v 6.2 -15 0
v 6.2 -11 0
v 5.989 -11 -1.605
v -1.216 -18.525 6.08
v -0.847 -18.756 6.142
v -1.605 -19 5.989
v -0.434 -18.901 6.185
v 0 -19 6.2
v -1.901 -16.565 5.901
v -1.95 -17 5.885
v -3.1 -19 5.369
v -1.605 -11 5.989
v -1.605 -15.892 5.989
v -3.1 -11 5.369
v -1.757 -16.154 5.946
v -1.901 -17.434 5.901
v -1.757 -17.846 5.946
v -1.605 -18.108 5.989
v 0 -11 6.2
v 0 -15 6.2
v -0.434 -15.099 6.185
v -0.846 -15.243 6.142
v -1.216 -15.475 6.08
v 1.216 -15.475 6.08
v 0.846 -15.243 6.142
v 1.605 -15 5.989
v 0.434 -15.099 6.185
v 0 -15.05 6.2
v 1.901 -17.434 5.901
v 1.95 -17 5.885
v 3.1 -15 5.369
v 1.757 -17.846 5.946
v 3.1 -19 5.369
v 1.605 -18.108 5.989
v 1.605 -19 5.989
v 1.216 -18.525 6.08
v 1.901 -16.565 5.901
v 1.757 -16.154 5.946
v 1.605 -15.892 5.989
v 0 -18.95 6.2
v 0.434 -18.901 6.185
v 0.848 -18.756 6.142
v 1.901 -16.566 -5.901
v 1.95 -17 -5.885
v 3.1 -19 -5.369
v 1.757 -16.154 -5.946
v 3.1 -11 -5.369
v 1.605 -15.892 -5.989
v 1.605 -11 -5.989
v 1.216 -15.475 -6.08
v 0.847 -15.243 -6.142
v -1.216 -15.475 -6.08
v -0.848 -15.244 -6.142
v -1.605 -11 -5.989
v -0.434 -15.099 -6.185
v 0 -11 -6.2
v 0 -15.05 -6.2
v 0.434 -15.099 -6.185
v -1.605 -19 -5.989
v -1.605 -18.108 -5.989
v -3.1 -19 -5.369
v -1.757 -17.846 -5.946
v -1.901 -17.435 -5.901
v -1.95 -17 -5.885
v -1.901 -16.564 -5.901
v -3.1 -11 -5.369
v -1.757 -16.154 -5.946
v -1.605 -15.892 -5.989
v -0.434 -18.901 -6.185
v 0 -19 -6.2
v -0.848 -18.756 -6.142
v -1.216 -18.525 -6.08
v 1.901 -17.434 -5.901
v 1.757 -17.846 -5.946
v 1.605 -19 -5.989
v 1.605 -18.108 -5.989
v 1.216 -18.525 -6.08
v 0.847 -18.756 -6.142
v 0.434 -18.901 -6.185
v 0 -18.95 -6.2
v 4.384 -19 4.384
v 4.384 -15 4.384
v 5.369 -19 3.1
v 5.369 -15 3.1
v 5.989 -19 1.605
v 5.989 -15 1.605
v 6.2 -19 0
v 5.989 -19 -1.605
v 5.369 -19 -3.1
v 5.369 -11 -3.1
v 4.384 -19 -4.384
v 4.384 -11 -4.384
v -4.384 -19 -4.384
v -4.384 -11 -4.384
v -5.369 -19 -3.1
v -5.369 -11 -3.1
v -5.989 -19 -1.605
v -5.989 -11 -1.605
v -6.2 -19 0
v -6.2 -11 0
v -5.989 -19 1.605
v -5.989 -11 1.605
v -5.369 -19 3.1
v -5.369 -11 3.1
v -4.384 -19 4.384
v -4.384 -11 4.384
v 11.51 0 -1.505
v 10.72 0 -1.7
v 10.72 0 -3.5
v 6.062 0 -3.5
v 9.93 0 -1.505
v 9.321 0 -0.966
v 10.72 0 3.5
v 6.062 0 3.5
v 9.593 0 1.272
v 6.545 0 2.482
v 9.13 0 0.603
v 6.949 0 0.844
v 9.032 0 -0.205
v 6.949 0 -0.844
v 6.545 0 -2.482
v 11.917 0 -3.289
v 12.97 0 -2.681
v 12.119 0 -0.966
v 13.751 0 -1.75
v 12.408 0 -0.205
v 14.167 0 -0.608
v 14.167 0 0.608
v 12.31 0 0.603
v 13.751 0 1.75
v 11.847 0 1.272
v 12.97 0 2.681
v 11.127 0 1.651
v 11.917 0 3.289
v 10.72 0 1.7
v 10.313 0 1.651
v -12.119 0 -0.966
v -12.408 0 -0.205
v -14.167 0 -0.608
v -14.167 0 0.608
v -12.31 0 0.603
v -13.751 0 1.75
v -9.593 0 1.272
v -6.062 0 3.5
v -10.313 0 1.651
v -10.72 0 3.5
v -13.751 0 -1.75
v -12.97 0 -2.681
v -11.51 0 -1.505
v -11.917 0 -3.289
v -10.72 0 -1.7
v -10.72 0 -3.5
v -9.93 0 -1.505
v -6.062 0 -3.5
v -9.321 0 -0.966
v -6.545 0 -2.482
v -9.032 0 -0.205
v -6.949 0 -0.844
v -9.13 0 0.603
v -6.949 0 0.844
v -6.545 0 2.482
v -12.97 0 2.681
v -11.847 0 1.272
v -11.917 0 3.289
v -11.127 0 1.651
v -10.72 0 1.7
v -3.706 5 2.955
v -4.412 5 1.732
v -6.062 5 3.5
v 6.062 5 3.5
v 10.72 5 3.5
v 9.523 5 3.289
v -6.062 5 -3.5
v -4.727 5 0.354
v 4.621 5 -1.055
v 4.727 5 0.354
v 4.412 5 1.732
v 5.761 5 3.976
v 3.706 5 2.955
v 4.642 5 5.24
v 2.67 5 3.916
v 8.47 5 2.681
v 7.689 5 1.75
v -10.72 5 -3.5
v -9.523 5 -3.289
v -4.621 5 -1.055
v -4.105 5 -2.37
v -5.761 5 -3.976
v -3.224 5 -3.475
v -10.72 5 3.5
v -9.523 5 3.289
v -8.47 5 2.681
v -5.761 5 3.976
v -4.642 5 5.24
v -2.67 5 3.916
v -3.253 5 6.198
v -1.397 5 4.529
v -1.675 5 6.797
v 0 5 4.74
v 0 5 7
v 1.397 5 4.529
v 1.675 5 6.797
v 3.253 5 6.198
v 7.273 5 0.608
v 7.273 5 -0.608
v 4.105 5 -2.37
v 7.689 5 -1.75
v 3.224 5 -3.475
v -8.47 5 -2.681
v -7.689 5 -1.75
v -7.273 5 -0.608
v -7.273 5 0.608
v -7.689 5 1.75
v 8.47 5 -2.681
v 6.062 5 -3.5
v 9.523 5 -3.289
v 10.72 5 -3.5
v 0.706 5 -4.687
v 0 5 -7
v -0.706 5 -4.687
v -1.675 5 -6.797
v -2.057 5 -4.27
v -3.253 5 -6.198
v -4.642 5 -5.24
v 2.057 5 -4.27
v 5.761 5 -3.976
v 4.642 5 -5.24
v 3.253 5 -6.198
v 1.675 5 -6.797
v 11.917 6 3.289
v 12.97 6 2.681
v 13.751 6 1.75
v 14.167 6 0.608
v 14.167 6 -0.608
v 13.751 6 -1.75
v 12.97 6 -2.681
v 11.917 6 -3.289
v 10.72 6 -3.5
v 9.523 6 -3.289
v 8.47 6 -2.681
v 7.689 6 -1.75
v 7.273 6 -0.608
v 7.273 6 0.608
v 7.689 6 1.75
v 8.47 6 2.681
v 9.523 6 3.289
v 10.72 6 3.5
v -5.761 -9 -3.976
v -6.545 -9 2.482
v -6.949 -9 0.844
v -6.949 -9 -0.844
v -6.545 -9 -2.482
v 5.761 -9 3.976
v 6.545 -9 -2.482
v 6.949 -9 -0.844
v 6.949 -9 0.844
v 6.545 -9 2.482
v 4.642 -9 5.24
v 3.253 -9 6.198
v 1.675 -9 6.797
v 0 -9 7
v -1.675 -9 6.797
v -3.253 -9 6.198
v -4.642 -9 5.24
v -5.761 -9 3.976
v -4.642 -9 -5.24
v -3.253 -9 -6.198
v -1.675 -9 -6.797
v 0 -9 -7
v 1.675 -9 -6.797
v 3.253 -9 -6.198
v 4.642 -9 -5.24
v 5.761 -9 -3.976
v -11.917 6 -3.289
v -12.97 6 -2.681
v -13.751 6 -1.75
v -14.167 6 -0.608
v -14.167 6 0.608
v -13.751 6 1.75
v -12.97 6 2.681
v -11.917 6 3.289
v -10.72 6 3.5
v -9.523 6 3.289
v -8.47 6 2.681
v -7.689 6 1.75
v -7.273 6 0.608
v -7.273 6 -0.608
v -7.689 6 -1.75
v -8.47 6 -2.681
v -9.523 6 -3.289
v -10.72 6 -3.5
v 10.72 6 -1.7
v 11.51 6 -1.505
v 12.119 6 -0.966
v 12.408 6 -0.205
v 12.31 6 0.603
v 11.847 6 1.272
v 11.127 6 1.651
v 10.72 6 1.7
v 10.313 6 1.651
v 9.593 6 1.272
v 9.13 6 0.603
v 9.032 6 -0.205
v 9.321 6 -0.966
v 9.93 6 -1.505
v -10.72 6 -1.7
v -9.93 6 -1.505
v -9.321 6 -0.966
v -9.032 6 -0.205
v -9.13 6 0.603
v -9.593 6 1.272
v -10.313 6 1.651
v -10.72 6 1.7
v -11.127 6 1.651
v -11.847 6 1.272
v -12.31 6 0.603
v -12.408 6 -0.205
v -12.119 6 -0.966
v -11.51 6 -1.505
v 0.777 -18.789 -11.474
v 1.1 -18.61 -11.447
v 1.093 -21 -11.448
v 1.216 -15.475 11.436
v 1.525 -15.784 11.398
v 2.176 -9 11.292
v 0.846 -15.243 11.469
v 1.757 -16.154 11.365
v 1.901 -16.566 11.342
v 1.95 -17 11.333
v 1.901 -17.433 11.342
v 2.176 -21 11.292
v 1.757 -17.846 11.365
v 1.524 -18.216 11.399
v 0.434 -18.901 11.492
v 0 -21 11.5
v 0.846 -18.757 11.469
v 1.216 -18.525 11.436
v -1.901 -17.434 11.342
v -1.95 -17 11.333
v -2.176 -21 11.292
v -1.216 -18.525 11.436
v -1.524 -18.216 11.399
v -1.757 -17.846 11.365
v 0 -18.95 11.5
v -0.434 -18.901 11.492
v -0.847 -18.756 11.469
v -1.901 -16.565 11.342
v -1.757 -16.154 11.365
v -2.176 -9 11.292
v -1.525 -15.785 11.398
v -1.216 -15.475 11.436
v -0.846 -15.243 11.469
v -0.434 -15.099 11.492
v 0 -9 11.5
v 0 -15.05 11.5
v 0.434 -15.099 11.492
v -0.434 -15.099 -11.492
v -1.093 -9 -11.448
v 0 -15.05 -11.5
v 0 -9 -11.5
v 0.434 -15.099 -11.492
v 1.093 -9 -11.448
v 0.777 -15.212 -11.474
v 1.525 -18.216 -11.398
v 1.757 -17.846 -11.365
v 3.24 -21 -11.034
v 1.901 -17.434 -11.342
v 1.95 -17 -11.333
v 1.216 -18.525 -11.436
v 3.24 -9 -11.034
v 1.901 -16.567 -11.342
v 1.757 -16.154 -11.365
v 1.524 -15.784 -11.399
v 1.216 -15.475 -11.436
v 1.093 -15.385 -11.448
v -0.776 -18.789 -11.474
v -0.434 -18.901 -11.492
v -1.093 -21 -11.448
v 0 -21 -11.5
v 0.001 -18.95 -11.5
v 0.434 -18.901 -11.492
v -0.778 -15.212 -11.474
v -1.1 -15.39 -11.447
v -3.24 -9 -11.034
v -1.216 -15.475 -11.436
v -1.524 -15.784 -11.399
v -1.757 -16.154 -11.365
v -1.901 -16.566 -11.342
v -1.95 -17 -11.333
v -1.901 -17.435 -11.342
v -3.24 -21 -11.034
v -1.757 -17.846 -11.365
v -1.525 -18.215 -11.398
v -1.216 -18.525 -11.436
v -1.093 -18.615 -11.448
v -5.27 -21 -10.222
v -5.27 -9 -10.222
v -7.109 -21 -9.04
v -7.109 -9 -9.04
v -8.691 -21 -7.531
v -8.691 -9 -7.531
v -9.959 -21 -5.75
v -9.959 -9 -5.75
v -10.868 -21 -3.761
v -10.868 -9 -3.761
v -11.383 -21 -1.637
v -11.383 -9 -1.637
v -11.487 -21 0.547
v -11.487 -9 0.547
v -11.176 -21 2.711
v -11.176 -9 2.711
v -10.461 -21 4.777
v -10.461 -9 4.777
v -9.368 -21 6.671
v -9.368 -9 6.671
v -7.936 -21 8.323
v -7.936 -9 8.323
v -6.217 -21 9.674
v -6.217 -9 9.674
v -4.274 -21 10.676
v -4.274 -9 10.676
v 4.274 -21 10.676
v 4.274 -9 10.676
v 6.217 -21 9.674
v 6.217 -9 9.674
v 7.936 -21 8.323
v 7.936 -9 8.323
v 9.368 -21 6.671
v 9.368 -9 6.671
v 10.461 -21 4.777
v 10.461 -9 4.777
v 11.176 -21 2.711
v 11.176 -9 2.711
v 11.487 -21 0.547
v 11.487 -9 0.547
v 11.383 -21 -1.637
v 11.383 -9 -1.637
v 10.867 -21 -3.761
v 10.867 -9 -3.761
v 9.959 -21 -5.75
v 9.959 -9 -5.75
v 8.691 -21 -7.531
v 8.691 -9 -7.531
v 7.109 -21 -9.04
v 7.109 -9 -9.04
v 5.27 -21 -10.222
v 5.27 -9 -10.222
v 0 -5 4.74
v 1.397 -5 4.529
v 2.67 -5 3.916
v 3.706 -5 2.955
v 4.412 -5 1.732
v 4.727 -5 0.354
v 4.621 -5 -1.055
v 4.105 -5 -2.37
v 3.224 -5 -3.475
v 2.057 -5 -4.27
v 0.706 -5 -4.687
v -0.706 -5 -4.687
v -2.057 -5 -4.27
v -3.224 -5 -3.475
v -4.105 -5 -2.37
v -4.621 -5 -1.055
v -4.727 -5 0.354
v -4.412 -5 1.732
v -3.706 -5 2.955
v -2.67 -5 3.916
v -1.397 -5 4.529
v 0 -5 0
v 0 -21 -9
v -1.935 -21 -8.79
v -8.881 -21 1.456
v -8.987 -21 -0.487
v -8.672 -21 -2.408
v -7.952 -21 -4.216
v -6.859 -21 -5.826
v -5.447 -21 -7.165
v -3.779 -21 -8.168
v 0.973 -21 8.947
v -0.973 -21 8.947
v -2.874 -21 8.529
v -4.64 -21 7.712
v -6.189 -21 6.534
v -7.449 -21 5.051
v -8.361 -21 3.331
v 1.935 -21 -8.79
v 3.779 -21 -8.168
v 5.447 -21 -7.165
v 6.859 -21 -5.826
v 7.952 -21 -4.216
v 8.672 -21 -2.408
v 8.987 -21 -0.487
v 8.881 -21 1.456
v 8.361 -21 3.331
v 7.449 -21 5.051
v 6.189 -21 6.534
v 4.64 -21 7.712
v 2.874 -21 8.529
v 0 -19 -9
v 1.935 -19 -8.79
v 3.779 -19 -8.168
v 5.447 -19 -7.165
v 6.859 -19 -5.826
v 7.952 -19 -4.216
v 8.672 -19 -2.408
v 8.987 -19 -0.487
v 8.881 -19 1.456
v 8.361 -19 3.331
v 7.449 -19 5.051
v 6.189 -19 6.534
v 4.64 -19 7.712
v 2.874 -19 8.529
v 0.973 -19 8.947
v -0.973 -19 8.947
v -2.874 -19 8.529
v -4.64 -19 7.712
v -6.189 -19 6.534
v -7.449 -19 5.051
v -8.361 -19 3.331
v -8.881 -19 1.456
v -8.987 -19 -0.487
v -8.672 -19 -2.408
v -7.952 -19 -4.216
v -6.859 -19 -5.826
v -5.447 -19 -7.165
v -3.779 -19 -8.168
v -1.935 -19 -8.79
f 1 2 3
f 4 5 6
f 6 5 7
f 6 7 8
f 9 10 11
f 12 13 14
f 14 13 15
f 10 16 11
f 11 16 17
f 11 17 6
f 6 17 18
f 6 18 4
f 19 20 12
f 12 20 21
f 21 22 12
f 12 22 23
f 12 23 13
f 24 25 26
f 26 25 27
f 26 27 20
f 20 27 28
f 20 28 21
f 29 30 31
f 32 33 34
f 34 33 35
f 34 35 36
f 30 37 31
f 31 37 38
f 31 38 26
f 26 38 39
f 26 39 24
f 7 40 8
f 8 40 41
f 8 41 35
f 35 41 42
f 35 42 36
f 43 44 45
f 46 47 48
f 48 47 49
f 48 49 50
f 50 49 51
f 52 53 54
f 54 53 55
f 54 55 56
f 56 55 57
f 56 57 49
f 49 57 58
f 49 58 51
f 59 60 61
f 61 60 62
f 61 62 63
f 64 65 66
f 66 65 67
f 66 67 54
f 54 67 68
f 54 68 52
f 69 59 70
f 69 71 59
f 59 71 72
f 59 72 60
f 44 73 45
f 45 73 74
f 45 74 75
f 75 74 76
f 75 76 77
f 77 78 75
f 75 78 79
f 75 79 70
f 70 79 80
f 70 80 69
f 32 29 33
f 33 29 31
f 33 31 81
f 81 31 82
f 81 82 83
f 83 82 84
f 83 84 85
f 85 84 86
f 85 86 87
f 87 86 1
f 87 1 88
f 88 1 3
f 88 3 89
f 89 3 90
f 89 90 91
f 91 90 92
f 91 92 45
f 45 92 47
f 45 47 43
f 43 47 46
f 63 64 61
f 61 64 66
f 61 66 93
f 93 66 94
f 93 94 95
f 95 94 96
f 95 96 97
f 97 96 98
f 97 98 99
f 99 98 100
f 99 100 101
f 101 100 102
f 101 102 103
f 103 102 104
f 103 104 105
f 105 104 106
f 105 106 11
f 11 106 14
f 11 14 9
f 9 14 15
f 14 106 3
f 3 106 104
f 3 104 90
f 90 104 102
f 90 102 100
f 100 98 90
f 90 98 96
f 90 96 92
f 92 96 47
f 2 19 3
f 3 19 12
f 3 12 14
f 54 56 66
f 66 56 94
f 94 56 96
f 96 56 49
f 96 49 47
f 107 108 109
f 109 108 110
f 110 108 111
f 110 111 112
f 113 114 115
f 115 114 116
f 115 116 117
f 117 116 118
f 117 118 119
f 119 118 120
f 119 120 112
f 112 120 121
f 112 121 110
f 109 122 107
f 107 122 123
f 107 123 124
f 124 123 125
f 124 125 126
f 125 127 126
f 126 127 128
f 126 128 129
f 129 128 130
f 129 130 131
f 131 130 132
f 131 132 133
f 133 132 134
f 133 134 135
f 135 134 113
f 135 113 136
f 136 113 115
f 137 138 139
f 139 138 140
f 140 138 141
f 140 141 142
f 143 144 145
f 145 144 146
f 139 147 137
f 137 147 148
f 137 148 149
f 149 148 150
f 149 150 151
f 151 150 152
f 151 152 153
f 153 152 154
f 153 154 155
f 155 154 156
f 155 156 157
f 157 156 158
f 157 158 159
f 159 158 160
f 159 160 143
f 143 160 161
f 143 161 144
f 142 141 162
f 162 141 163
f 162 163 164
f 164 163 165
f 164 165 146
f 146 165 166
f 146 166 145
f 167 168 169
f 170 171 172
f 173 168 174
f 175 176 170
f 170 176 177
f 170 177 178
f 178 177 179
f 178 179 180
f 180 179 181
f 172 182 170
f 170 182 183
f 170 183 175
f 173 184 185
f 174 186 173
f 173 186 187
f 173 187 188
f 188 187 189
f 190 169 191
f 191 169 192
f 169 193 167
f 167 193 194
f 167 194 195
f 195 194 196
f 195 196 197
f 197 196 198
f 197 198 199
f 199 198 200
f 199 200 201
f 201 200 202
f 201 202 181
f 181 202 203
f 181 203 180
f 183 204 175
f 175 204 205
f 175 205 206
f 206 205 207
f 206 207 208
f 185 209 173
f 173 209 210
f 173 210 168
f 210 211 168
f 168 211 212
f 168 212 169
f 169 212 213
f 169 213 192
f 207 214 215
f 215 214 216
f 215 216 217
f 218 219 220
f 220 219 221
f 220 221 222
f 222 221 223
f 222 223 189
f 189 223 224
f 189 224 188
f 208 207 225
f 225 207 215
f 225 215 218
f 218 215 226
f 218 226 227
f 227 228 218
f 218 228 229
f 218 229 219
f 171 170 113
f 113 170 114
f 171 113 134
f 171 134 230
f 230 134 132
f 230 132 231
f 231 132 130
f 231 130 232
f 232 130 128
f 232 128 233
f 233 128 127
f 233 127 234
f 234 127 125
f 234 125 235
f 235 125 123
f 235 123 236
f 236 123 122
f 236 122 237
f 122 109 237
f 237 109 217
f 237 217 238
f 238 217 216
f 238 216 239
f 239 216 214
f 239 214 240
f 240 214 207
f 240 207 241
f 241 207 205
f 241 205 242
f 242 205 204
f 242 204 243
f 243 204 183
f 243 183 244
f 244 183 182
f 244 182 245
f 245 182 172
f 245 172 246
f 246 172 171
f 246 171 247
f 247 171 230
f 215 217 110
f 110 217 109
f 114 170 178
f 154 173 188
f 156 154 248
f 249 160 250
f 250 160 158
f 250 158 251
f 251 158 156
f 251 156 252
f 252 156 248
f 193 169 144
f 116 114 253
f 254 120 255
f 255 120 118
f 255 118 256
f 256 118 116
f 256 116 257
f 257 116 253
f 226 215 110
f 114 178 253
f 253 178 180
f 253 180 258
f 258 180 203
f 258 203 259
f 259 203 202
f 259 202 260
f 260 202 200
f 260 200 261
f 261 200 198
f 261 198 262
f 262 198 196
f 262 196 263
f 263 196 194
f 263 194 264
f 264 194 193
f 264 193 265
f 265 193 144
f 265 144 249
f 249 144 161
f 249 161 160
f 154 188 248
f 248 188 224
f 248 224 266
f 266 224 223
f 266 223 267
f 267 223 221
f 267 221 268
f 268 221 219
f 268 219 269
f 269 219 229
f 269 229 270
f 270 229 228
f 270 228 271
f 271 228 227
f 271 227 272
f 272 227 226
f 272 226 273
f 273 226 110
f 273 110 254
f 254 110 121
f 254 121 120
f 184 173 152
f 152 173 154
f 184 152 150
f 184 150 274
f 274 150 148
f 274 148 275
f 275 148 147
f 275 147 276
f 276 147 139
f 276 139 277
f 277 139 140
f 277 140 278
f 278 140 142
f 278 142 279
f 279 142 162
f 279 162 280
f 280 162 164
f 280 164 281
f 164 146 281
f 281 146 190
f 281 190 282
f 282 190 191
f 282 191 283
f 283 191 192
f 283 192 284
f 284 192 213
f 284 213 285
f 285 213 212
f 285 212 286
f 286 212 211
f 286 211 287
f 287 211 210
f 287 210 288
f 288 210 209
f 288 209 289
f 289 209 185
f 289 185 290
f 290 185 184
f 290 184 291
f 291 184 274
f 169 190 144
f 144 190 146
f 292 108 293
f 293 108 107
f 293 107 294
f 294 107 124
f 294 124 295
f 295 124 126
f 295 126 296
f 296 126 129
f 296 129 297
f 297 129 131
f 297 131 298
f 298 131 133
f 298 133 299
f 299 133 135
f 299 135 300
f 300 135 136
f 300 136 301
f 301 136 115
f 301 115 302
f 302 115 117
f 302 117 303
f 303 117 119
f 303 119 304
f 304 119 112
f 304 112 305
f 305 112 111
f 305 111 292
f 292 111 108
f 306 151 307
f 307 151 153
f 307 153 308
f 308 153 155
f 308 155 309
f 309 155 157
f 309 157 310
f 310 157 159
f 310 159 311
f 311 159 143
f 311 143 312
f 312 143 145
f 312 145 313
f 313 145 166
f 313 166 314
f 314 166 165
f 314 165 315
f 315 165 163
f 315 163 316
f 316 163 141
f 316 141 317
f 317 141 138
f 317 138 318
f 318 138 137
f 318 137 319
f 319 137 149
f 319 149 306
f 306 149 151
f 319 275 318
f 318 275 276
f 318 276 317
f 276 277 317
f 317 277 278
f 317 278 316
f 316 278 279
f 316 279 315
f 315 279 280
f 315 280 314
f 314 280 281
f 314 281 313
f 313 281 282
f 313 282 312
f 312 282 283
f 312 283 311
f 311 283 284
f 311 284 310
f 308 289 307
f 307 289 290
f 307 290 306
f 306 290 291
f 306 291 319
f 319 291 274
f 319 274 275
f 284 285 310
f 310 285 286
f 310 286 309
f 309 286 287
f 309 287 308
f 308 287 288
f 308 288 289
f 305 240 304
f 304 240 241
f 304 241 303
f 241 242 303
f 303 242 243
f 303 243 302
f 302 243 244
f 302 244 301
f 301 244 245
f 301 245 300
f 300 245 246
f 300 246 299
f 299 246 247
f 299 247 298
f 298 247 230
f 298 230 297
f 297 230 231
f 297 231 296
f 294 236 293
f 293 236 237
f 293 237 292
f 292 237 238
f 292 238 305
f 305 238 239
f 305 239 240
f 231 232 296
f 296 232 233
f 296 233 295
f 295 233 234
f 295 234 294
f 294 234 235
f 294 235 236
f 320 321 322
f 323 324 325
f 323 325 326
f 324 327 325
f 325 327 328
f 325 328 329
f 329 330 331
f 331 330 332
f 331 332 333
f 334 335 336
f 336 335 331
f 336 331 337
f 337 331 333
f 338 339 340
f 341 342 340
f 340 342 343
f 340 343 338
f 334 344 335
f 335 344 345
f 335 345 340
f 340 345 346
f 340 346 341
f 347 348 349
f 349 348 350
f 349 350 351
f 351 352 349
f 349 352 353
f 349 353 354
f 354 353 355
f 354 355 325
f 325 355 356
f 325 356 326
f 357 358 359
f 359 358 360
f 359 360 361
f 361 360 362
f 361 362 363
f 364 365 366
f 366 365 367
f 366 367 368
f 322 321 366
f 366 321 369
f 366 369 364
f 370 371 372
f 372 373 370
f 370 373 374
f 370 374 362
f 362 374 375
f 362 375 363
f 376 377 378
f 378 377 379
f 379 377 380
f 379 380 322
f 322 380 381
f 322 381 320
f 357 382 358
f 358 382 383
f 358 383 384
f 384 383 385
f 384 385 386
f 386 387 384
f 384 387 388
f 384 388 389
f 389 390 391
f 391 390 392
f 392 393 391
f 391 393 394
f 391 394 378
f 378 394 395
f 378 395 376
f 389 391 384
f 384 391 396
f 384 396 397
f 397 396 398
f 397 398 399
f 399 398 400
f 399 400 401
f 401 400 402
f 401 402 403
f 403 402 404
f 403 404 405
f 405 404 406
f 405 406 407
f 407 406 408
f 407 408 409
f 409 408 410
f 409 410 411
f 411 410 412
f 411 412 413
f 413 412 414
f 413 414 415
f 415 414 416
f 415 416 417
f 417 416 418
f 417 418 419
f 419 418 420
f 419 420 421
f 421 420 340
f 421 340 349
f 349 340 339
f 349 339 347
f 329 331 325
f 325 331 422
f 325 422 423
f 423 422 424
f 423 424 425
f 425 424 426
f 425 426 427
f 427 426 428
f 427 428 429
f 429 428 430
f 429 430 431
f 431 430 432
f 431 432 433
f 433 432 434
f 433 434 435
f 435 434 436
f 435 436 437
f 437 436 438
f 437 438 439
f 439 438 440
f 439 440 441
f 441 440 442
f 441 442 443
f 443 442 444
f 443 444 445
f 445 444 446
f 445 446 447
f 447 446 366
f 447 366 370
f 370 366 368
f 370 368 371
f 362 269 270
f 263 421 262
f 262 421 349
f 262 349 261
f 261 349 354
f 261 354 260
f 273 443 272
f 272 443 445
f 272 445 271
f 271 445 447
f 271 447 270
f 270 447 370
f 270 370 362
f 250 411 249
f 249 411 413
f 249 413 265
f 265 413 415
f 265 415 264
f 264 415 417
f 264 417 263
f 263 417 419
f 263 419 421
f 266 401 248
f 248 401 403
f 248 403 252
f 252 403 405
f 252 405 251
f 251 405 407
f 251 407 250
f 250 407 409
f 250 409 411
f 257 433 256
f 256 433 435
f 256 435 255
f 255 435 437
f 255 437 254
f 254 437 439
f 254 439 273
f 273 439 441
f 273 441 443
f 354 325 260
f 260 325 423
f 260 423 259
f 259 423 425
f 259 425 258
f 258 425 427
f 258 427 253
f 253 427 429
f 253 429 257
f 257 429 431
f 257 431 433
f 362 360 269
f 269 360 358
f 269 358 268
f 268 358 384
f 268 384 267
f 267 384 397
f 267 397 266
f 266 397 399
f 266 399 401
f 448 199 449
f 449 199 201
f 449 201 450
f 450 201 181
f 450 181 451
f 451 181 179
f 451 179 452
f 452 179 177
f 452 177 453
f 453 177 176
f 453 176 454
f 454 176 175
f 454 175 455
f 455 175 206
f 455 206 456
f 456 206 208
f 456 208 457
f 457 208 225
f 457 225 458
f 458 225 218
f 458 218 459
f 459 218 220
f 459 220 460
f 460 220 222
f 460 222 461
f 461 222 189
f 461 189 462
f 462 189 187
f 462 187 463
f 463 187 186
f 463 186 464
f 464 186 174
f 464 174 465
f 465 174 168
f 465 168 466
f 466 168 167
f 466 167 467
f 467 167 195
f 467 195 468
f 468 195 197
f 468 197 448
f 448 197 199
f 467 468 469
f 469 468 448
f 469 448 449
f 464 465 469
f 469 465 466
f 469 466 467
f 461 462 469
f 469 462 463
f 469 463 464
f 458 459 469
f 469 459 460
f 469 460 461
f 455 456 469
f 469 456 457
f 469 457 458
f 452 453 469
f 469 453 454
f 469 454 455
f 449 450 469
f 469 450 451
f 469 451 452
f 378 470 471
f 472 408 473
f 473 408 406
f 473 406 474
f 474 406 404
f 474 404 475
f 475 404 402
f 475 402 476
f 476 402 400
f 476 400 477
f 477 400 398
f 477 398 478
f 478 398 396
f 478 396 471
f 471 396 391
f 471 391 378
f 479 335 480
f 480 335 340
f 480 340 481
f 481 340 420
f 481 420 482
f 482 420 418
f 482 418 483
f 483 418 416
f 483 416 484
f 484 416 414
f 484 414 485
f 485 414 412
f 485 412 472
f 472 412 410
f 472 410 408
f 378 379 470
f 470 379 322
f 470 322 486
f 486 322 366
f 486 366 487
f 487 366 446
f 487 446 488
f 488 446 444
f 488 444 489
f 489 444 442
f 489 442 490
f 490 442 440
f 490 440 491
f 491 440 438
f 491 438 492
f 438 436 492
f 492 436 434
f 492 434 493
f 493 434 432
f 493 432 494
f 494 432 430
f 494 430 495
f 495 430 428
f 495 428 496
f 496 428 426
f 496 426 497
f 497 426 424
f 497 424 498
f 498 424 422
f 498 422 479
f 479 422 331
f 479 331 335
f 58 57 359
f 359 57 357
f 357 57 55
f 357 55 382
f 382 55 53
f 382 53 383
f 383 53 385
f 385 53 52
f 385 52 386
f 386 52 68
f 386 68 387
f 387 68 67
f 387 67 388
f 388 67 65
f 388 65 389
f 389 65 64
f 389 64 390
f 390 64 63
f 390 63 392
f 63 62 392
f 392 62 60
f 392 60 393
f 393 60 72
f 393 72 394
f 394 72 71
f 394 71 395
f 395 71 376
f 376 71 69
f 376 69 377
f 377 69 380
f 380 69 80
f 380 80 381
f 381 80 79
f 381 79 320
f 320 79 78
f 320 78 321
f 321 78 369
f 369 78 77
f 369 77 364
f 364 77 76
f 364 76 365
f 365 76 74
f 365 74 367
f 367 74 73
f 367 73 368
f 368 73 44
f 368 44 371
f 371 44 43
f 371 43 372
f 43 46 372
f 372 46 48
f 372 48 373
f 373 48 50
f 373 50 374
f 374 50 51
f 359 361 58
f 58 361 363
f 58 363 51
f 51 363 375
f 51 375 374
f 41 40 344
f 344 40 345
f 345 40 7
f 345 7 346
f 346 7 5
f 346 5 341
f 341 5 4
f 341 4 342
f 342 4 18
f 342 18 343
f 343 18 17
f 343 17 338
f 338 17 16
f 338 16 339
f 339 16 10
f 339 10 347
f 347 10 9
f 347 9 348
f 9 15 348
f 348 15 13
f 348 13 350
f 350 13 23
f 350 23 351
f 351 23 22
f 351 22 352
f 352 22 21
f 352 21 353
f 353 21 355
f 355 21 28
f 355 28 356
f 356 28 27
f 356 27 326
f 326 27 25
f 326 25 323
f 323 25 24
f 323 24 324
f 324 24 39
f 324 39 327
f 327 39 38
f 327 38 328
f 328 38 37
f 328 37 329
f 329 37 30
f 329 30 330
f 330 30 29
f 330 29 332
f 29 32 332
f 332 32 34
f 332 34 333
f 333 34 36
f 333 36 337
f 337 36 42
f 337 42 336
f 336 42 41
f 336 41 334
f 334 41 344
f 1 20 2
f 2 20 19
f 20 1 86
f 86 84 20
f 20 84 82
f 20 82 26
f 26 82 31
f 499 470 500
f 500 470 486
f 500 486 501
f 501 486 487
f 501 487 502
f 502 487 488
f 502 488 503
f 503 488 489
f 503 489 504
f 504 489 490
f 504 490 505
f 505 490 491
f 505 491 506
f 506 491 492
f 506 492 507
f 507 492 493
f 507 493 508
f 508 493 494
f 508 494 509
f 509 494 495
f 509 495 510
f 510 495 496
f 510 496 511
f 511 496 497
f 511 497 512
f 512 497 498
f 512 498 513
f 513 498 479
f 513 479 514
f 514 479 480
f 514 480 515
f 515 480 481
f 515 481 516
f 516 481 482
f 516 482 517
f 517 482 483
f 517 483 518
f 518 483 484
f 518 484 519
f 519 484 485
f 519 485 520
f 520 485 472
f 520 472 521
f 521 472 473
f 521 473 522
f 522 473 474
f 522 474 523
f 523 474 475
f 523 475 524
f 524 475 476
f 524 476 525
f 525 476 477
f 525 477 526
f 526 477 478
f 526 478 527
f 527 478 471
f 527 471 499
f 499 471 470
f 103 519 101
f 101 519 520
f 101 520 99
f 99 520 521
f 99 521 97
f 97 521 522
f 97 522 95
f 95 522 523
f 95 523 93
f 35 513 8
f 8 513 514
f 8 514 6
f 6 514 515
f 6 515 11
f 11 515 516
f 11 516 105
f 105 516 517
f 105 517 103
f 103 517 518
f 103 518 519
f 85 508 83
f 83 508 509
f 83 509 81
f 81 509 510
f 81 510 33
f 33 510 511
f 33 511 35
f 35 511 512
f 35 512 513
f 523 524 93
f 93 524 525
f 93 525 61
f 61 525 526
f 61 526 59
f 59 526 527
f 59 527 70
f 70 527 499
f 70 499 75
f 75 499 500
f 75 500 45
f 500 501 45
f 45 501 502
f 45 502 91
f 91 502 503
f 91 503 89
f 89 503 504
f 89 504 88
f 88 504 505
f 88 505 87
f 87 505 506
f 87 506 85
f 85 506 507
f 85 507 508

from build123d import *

# Parameters (mm, degrees)
ESQUISSE1_R                  = 1.7
BOSS_EXTRU_1_DEPTH           = 5
ESQUISSE2_R                  = 3.5
ESQUISSE2_R_2                = 1.7
BOSS_EXTRU_2_DEPTH           = 1
BOSS_EXTRU_3_START           = 9
ESQUISSE5_R                  = 7
BOSS_EXTRU_3_DEPTH           = 9
ESQUISSE6_R                  = 11.5
BOSS_EXTRU_4_DEPTH           = 2
ESQUISSE7_R                  = 4.739811
ENL_V_MAT_EXTRU_1_DEPTH      = 10
ESQUISSE8_R                  = 11.5
ESQUISSE8_R_2                = 6.75
BOSS_EXTRU_5_DEPTH           = 10
ESQUISSE10_R                 = 6.9395
ESQUISSE10_R_2               = 6.2
BOSS_EXTRU_6_DEPTH           = 10
ENL_V_MAT_EXTRU_2_DEPTH      = 28.847054
ENL_V_MAT_EXTRU_2_DEPTH_BACK = 28.847054
ESQUISSE9_R                  = 1.95
BOSS_EXTRU_7_DEPTH           = 4
ESQUISSE12_R                 = 9
ENL_V_MAT_EXTRU_3_DEPTH      = 2


with BuildPart() as part:
    # Esquisse1 → Boss.-Extru.1 (new body)
    with BuildSketch(Plane(origin=(0, 0, 0), x_dir=(1, 0, 0), z_dir=(0, 1, 0))):
        with BuildLine():
            Line((-10.72, 3.5), (-6.062178, 3.5))
            ThreePointArc((-6.062178, 3.5), (0, 7), (6.062178, 3.5))
            Line((6.062178, 3.5), (10.72, 3.5))
            ThreePointArc((10.72, 3.5), (14.22, 0), (10.72, -3.5))
            Line((10.72, -3.5), (6.062178, -3.5))
            ThreePointArc((6.062178, -3.5), (0, -7), (-6.062178, -3.5))
            Line((-6.062178, -3.5), (-10.72, -3.5))
            ThreePointArc((-10.72, -3.5), (-14.22, 0), (-10.72, 3.5))
        make_face()
        with Locations(Location((10.72, 0, 0), (0, 0, 270))):
            Circle(ESQUISSE1_R, mode=Mode.SUBTRACT)
        with Locations(Location((-10.72, 0, 0), (0, 0, 270))):
            Circle(ESQUISSE1_R, mode=Mode.SUBTRACT)
    extrude(amount=BOSS_EXTRU_1_DEPTH)

    # Esquisse2 → Boss.-Extru.2 (add)
    # profile 1 of 2: a face of its own
    with BuildSketch(Plane(origin=(0, 5, 0), x_dir=(1, 0, 0), z_dir=(0, 1, 0))):
        with Locations(Location((-10.72, 0, 0), (0, 0, 270))):
            Circle(ESQUISSE2_R)
        with Locations(Location((-10.72, 0, 0), (0, 0, 270))):
            Circle(ESQUISSE2_R_2, mode=Mode.SUBTRACT)
    # profile 2 of 2: a face of its own
    with BuildSketch(Plane(origin=(0, 5, 0), x_dir=(1, 0, 0), z_dir=(0, 1, 0))):
        with Locations(Location((10.72, 0, 0), (0, 0, 270))):
            Circle(ESQUISSE2_R)
        with Locations(Location((10.72, 0, 0), (0, 0, 270))):
            Circle(ESQUISSE2_R_2, mode=Mode.SUBTRACT)
    extrude(amount=BOSS_EXTRU_2_DEPTH)

    # Esquisse5 → Boss.-Extru.3 (add)
    with BuildSketch(Plane.XZ.offset(BOSS_EXTRU_3_START)):
        with Locations(Location((0, 0, 0), (0, 0, 270))):
            Circle(ESQUISSE5_R)
    extrude(amount=-BOSS_EXTRU_3_DEPTH)

    # Esquisse6 → Boss.-Extru.4 (add)
    with BuildSketch(Plane.XZ.offset(9)):
        with Locations(Location((0, 0, 0), (0, 0, 270))):
            Circle(ESQUISSE6_R)
    extrude(amount=BOSS_EXTRU_4_DEPTH)

    # Esquisse7 → Enlèv. mat.-Extru.1 (cut)
    with BuildSketch(Plane(origin=(0, 5, 0), x_dir=(1, 0, 0), z_dir=(0, 1, 0))):
        with Locations(Location((0, 0, 0), (0, 0, 270))):
            Circle(ESQUISSE7_R)
    extrude(amount=-ENL_V_MAT_EXTRU_1_DEPTH, mode=Mode.SUBTRACT)

    # Esquisse8 → Boss.-Extru.5 (add)
    with BuildSketch(Plane.XZ.offset(11)):
        with Locations(Location((0, 0, 0), (0, 0, 270))):
            Circle(ESQUISSE8_R)
        with Locations(Location((0, 0, 0), (0, 0, 270))):
            Circle(ESQUISSE8_R_2, mode=Mode.SUBTRACT)
    extrude(amount=BOSS_EXTRU_5_DEPTH)

    # Esquisse10 → Boss.-Extru.6 (add)
    with BuildSketch(Plane.XZ.offset(11)):
        Circle(ESQUISSE10_R)
        with Locations(Location((0, 0, 0), (0, 0, 90))):
            Circle(ESQUISSE10_R_2, mode=Mode.SUBTRACT)
    extrude(amount=BOSS_EXTRU_6_DEPTH)

    # Esquisse9 → Enlèv. mat.-Extru.2 (cut, two sides: drawn at the far end of the back side and taken through both)
    with BuildSketch(Plane.XY.offset(-ENL_V_MAT_EXTRU_2_DEPTH_BACK)):
        with Locations(Location((0, -17, 0), (0, 0, 270))):
            Circle(ESQUISSE9_R)
    extrude(amount=ENL_V_MAT_EXTRU_2_DEPTH + ENL_V_MAT_EXTRU_2_DEPTH_BACK, mode=Mode.SUBTRACT)

    # Esquisse11 → Boss.-Extru.7 (add)
    with BuildSketch(Plane.XZ.offset(11)):
        with BuildLine():
            Line((0, 6.2), (6.2, 0))
            ThreePointArc((6.2, 0), (4.384062, 4.384062), (0, 6.2))
        make_face()
    extrude(amount=BOSS_EXTRU_7_DEPTH)

    # Esquisse12 → Enlèv. mat.-Extru.3 (cut)
    with BuildSketch(Plane.XZ.offset(21)):
        with Locations(Location((0, 0, 0), (0, 0, 270))):
            Circle(ESQUISSE12_R)
    extrude(amount=-ENL_V_MAT_EXTRU_3_DEPTH, mode=Mode.SUBTRACT)


solid = part.part
